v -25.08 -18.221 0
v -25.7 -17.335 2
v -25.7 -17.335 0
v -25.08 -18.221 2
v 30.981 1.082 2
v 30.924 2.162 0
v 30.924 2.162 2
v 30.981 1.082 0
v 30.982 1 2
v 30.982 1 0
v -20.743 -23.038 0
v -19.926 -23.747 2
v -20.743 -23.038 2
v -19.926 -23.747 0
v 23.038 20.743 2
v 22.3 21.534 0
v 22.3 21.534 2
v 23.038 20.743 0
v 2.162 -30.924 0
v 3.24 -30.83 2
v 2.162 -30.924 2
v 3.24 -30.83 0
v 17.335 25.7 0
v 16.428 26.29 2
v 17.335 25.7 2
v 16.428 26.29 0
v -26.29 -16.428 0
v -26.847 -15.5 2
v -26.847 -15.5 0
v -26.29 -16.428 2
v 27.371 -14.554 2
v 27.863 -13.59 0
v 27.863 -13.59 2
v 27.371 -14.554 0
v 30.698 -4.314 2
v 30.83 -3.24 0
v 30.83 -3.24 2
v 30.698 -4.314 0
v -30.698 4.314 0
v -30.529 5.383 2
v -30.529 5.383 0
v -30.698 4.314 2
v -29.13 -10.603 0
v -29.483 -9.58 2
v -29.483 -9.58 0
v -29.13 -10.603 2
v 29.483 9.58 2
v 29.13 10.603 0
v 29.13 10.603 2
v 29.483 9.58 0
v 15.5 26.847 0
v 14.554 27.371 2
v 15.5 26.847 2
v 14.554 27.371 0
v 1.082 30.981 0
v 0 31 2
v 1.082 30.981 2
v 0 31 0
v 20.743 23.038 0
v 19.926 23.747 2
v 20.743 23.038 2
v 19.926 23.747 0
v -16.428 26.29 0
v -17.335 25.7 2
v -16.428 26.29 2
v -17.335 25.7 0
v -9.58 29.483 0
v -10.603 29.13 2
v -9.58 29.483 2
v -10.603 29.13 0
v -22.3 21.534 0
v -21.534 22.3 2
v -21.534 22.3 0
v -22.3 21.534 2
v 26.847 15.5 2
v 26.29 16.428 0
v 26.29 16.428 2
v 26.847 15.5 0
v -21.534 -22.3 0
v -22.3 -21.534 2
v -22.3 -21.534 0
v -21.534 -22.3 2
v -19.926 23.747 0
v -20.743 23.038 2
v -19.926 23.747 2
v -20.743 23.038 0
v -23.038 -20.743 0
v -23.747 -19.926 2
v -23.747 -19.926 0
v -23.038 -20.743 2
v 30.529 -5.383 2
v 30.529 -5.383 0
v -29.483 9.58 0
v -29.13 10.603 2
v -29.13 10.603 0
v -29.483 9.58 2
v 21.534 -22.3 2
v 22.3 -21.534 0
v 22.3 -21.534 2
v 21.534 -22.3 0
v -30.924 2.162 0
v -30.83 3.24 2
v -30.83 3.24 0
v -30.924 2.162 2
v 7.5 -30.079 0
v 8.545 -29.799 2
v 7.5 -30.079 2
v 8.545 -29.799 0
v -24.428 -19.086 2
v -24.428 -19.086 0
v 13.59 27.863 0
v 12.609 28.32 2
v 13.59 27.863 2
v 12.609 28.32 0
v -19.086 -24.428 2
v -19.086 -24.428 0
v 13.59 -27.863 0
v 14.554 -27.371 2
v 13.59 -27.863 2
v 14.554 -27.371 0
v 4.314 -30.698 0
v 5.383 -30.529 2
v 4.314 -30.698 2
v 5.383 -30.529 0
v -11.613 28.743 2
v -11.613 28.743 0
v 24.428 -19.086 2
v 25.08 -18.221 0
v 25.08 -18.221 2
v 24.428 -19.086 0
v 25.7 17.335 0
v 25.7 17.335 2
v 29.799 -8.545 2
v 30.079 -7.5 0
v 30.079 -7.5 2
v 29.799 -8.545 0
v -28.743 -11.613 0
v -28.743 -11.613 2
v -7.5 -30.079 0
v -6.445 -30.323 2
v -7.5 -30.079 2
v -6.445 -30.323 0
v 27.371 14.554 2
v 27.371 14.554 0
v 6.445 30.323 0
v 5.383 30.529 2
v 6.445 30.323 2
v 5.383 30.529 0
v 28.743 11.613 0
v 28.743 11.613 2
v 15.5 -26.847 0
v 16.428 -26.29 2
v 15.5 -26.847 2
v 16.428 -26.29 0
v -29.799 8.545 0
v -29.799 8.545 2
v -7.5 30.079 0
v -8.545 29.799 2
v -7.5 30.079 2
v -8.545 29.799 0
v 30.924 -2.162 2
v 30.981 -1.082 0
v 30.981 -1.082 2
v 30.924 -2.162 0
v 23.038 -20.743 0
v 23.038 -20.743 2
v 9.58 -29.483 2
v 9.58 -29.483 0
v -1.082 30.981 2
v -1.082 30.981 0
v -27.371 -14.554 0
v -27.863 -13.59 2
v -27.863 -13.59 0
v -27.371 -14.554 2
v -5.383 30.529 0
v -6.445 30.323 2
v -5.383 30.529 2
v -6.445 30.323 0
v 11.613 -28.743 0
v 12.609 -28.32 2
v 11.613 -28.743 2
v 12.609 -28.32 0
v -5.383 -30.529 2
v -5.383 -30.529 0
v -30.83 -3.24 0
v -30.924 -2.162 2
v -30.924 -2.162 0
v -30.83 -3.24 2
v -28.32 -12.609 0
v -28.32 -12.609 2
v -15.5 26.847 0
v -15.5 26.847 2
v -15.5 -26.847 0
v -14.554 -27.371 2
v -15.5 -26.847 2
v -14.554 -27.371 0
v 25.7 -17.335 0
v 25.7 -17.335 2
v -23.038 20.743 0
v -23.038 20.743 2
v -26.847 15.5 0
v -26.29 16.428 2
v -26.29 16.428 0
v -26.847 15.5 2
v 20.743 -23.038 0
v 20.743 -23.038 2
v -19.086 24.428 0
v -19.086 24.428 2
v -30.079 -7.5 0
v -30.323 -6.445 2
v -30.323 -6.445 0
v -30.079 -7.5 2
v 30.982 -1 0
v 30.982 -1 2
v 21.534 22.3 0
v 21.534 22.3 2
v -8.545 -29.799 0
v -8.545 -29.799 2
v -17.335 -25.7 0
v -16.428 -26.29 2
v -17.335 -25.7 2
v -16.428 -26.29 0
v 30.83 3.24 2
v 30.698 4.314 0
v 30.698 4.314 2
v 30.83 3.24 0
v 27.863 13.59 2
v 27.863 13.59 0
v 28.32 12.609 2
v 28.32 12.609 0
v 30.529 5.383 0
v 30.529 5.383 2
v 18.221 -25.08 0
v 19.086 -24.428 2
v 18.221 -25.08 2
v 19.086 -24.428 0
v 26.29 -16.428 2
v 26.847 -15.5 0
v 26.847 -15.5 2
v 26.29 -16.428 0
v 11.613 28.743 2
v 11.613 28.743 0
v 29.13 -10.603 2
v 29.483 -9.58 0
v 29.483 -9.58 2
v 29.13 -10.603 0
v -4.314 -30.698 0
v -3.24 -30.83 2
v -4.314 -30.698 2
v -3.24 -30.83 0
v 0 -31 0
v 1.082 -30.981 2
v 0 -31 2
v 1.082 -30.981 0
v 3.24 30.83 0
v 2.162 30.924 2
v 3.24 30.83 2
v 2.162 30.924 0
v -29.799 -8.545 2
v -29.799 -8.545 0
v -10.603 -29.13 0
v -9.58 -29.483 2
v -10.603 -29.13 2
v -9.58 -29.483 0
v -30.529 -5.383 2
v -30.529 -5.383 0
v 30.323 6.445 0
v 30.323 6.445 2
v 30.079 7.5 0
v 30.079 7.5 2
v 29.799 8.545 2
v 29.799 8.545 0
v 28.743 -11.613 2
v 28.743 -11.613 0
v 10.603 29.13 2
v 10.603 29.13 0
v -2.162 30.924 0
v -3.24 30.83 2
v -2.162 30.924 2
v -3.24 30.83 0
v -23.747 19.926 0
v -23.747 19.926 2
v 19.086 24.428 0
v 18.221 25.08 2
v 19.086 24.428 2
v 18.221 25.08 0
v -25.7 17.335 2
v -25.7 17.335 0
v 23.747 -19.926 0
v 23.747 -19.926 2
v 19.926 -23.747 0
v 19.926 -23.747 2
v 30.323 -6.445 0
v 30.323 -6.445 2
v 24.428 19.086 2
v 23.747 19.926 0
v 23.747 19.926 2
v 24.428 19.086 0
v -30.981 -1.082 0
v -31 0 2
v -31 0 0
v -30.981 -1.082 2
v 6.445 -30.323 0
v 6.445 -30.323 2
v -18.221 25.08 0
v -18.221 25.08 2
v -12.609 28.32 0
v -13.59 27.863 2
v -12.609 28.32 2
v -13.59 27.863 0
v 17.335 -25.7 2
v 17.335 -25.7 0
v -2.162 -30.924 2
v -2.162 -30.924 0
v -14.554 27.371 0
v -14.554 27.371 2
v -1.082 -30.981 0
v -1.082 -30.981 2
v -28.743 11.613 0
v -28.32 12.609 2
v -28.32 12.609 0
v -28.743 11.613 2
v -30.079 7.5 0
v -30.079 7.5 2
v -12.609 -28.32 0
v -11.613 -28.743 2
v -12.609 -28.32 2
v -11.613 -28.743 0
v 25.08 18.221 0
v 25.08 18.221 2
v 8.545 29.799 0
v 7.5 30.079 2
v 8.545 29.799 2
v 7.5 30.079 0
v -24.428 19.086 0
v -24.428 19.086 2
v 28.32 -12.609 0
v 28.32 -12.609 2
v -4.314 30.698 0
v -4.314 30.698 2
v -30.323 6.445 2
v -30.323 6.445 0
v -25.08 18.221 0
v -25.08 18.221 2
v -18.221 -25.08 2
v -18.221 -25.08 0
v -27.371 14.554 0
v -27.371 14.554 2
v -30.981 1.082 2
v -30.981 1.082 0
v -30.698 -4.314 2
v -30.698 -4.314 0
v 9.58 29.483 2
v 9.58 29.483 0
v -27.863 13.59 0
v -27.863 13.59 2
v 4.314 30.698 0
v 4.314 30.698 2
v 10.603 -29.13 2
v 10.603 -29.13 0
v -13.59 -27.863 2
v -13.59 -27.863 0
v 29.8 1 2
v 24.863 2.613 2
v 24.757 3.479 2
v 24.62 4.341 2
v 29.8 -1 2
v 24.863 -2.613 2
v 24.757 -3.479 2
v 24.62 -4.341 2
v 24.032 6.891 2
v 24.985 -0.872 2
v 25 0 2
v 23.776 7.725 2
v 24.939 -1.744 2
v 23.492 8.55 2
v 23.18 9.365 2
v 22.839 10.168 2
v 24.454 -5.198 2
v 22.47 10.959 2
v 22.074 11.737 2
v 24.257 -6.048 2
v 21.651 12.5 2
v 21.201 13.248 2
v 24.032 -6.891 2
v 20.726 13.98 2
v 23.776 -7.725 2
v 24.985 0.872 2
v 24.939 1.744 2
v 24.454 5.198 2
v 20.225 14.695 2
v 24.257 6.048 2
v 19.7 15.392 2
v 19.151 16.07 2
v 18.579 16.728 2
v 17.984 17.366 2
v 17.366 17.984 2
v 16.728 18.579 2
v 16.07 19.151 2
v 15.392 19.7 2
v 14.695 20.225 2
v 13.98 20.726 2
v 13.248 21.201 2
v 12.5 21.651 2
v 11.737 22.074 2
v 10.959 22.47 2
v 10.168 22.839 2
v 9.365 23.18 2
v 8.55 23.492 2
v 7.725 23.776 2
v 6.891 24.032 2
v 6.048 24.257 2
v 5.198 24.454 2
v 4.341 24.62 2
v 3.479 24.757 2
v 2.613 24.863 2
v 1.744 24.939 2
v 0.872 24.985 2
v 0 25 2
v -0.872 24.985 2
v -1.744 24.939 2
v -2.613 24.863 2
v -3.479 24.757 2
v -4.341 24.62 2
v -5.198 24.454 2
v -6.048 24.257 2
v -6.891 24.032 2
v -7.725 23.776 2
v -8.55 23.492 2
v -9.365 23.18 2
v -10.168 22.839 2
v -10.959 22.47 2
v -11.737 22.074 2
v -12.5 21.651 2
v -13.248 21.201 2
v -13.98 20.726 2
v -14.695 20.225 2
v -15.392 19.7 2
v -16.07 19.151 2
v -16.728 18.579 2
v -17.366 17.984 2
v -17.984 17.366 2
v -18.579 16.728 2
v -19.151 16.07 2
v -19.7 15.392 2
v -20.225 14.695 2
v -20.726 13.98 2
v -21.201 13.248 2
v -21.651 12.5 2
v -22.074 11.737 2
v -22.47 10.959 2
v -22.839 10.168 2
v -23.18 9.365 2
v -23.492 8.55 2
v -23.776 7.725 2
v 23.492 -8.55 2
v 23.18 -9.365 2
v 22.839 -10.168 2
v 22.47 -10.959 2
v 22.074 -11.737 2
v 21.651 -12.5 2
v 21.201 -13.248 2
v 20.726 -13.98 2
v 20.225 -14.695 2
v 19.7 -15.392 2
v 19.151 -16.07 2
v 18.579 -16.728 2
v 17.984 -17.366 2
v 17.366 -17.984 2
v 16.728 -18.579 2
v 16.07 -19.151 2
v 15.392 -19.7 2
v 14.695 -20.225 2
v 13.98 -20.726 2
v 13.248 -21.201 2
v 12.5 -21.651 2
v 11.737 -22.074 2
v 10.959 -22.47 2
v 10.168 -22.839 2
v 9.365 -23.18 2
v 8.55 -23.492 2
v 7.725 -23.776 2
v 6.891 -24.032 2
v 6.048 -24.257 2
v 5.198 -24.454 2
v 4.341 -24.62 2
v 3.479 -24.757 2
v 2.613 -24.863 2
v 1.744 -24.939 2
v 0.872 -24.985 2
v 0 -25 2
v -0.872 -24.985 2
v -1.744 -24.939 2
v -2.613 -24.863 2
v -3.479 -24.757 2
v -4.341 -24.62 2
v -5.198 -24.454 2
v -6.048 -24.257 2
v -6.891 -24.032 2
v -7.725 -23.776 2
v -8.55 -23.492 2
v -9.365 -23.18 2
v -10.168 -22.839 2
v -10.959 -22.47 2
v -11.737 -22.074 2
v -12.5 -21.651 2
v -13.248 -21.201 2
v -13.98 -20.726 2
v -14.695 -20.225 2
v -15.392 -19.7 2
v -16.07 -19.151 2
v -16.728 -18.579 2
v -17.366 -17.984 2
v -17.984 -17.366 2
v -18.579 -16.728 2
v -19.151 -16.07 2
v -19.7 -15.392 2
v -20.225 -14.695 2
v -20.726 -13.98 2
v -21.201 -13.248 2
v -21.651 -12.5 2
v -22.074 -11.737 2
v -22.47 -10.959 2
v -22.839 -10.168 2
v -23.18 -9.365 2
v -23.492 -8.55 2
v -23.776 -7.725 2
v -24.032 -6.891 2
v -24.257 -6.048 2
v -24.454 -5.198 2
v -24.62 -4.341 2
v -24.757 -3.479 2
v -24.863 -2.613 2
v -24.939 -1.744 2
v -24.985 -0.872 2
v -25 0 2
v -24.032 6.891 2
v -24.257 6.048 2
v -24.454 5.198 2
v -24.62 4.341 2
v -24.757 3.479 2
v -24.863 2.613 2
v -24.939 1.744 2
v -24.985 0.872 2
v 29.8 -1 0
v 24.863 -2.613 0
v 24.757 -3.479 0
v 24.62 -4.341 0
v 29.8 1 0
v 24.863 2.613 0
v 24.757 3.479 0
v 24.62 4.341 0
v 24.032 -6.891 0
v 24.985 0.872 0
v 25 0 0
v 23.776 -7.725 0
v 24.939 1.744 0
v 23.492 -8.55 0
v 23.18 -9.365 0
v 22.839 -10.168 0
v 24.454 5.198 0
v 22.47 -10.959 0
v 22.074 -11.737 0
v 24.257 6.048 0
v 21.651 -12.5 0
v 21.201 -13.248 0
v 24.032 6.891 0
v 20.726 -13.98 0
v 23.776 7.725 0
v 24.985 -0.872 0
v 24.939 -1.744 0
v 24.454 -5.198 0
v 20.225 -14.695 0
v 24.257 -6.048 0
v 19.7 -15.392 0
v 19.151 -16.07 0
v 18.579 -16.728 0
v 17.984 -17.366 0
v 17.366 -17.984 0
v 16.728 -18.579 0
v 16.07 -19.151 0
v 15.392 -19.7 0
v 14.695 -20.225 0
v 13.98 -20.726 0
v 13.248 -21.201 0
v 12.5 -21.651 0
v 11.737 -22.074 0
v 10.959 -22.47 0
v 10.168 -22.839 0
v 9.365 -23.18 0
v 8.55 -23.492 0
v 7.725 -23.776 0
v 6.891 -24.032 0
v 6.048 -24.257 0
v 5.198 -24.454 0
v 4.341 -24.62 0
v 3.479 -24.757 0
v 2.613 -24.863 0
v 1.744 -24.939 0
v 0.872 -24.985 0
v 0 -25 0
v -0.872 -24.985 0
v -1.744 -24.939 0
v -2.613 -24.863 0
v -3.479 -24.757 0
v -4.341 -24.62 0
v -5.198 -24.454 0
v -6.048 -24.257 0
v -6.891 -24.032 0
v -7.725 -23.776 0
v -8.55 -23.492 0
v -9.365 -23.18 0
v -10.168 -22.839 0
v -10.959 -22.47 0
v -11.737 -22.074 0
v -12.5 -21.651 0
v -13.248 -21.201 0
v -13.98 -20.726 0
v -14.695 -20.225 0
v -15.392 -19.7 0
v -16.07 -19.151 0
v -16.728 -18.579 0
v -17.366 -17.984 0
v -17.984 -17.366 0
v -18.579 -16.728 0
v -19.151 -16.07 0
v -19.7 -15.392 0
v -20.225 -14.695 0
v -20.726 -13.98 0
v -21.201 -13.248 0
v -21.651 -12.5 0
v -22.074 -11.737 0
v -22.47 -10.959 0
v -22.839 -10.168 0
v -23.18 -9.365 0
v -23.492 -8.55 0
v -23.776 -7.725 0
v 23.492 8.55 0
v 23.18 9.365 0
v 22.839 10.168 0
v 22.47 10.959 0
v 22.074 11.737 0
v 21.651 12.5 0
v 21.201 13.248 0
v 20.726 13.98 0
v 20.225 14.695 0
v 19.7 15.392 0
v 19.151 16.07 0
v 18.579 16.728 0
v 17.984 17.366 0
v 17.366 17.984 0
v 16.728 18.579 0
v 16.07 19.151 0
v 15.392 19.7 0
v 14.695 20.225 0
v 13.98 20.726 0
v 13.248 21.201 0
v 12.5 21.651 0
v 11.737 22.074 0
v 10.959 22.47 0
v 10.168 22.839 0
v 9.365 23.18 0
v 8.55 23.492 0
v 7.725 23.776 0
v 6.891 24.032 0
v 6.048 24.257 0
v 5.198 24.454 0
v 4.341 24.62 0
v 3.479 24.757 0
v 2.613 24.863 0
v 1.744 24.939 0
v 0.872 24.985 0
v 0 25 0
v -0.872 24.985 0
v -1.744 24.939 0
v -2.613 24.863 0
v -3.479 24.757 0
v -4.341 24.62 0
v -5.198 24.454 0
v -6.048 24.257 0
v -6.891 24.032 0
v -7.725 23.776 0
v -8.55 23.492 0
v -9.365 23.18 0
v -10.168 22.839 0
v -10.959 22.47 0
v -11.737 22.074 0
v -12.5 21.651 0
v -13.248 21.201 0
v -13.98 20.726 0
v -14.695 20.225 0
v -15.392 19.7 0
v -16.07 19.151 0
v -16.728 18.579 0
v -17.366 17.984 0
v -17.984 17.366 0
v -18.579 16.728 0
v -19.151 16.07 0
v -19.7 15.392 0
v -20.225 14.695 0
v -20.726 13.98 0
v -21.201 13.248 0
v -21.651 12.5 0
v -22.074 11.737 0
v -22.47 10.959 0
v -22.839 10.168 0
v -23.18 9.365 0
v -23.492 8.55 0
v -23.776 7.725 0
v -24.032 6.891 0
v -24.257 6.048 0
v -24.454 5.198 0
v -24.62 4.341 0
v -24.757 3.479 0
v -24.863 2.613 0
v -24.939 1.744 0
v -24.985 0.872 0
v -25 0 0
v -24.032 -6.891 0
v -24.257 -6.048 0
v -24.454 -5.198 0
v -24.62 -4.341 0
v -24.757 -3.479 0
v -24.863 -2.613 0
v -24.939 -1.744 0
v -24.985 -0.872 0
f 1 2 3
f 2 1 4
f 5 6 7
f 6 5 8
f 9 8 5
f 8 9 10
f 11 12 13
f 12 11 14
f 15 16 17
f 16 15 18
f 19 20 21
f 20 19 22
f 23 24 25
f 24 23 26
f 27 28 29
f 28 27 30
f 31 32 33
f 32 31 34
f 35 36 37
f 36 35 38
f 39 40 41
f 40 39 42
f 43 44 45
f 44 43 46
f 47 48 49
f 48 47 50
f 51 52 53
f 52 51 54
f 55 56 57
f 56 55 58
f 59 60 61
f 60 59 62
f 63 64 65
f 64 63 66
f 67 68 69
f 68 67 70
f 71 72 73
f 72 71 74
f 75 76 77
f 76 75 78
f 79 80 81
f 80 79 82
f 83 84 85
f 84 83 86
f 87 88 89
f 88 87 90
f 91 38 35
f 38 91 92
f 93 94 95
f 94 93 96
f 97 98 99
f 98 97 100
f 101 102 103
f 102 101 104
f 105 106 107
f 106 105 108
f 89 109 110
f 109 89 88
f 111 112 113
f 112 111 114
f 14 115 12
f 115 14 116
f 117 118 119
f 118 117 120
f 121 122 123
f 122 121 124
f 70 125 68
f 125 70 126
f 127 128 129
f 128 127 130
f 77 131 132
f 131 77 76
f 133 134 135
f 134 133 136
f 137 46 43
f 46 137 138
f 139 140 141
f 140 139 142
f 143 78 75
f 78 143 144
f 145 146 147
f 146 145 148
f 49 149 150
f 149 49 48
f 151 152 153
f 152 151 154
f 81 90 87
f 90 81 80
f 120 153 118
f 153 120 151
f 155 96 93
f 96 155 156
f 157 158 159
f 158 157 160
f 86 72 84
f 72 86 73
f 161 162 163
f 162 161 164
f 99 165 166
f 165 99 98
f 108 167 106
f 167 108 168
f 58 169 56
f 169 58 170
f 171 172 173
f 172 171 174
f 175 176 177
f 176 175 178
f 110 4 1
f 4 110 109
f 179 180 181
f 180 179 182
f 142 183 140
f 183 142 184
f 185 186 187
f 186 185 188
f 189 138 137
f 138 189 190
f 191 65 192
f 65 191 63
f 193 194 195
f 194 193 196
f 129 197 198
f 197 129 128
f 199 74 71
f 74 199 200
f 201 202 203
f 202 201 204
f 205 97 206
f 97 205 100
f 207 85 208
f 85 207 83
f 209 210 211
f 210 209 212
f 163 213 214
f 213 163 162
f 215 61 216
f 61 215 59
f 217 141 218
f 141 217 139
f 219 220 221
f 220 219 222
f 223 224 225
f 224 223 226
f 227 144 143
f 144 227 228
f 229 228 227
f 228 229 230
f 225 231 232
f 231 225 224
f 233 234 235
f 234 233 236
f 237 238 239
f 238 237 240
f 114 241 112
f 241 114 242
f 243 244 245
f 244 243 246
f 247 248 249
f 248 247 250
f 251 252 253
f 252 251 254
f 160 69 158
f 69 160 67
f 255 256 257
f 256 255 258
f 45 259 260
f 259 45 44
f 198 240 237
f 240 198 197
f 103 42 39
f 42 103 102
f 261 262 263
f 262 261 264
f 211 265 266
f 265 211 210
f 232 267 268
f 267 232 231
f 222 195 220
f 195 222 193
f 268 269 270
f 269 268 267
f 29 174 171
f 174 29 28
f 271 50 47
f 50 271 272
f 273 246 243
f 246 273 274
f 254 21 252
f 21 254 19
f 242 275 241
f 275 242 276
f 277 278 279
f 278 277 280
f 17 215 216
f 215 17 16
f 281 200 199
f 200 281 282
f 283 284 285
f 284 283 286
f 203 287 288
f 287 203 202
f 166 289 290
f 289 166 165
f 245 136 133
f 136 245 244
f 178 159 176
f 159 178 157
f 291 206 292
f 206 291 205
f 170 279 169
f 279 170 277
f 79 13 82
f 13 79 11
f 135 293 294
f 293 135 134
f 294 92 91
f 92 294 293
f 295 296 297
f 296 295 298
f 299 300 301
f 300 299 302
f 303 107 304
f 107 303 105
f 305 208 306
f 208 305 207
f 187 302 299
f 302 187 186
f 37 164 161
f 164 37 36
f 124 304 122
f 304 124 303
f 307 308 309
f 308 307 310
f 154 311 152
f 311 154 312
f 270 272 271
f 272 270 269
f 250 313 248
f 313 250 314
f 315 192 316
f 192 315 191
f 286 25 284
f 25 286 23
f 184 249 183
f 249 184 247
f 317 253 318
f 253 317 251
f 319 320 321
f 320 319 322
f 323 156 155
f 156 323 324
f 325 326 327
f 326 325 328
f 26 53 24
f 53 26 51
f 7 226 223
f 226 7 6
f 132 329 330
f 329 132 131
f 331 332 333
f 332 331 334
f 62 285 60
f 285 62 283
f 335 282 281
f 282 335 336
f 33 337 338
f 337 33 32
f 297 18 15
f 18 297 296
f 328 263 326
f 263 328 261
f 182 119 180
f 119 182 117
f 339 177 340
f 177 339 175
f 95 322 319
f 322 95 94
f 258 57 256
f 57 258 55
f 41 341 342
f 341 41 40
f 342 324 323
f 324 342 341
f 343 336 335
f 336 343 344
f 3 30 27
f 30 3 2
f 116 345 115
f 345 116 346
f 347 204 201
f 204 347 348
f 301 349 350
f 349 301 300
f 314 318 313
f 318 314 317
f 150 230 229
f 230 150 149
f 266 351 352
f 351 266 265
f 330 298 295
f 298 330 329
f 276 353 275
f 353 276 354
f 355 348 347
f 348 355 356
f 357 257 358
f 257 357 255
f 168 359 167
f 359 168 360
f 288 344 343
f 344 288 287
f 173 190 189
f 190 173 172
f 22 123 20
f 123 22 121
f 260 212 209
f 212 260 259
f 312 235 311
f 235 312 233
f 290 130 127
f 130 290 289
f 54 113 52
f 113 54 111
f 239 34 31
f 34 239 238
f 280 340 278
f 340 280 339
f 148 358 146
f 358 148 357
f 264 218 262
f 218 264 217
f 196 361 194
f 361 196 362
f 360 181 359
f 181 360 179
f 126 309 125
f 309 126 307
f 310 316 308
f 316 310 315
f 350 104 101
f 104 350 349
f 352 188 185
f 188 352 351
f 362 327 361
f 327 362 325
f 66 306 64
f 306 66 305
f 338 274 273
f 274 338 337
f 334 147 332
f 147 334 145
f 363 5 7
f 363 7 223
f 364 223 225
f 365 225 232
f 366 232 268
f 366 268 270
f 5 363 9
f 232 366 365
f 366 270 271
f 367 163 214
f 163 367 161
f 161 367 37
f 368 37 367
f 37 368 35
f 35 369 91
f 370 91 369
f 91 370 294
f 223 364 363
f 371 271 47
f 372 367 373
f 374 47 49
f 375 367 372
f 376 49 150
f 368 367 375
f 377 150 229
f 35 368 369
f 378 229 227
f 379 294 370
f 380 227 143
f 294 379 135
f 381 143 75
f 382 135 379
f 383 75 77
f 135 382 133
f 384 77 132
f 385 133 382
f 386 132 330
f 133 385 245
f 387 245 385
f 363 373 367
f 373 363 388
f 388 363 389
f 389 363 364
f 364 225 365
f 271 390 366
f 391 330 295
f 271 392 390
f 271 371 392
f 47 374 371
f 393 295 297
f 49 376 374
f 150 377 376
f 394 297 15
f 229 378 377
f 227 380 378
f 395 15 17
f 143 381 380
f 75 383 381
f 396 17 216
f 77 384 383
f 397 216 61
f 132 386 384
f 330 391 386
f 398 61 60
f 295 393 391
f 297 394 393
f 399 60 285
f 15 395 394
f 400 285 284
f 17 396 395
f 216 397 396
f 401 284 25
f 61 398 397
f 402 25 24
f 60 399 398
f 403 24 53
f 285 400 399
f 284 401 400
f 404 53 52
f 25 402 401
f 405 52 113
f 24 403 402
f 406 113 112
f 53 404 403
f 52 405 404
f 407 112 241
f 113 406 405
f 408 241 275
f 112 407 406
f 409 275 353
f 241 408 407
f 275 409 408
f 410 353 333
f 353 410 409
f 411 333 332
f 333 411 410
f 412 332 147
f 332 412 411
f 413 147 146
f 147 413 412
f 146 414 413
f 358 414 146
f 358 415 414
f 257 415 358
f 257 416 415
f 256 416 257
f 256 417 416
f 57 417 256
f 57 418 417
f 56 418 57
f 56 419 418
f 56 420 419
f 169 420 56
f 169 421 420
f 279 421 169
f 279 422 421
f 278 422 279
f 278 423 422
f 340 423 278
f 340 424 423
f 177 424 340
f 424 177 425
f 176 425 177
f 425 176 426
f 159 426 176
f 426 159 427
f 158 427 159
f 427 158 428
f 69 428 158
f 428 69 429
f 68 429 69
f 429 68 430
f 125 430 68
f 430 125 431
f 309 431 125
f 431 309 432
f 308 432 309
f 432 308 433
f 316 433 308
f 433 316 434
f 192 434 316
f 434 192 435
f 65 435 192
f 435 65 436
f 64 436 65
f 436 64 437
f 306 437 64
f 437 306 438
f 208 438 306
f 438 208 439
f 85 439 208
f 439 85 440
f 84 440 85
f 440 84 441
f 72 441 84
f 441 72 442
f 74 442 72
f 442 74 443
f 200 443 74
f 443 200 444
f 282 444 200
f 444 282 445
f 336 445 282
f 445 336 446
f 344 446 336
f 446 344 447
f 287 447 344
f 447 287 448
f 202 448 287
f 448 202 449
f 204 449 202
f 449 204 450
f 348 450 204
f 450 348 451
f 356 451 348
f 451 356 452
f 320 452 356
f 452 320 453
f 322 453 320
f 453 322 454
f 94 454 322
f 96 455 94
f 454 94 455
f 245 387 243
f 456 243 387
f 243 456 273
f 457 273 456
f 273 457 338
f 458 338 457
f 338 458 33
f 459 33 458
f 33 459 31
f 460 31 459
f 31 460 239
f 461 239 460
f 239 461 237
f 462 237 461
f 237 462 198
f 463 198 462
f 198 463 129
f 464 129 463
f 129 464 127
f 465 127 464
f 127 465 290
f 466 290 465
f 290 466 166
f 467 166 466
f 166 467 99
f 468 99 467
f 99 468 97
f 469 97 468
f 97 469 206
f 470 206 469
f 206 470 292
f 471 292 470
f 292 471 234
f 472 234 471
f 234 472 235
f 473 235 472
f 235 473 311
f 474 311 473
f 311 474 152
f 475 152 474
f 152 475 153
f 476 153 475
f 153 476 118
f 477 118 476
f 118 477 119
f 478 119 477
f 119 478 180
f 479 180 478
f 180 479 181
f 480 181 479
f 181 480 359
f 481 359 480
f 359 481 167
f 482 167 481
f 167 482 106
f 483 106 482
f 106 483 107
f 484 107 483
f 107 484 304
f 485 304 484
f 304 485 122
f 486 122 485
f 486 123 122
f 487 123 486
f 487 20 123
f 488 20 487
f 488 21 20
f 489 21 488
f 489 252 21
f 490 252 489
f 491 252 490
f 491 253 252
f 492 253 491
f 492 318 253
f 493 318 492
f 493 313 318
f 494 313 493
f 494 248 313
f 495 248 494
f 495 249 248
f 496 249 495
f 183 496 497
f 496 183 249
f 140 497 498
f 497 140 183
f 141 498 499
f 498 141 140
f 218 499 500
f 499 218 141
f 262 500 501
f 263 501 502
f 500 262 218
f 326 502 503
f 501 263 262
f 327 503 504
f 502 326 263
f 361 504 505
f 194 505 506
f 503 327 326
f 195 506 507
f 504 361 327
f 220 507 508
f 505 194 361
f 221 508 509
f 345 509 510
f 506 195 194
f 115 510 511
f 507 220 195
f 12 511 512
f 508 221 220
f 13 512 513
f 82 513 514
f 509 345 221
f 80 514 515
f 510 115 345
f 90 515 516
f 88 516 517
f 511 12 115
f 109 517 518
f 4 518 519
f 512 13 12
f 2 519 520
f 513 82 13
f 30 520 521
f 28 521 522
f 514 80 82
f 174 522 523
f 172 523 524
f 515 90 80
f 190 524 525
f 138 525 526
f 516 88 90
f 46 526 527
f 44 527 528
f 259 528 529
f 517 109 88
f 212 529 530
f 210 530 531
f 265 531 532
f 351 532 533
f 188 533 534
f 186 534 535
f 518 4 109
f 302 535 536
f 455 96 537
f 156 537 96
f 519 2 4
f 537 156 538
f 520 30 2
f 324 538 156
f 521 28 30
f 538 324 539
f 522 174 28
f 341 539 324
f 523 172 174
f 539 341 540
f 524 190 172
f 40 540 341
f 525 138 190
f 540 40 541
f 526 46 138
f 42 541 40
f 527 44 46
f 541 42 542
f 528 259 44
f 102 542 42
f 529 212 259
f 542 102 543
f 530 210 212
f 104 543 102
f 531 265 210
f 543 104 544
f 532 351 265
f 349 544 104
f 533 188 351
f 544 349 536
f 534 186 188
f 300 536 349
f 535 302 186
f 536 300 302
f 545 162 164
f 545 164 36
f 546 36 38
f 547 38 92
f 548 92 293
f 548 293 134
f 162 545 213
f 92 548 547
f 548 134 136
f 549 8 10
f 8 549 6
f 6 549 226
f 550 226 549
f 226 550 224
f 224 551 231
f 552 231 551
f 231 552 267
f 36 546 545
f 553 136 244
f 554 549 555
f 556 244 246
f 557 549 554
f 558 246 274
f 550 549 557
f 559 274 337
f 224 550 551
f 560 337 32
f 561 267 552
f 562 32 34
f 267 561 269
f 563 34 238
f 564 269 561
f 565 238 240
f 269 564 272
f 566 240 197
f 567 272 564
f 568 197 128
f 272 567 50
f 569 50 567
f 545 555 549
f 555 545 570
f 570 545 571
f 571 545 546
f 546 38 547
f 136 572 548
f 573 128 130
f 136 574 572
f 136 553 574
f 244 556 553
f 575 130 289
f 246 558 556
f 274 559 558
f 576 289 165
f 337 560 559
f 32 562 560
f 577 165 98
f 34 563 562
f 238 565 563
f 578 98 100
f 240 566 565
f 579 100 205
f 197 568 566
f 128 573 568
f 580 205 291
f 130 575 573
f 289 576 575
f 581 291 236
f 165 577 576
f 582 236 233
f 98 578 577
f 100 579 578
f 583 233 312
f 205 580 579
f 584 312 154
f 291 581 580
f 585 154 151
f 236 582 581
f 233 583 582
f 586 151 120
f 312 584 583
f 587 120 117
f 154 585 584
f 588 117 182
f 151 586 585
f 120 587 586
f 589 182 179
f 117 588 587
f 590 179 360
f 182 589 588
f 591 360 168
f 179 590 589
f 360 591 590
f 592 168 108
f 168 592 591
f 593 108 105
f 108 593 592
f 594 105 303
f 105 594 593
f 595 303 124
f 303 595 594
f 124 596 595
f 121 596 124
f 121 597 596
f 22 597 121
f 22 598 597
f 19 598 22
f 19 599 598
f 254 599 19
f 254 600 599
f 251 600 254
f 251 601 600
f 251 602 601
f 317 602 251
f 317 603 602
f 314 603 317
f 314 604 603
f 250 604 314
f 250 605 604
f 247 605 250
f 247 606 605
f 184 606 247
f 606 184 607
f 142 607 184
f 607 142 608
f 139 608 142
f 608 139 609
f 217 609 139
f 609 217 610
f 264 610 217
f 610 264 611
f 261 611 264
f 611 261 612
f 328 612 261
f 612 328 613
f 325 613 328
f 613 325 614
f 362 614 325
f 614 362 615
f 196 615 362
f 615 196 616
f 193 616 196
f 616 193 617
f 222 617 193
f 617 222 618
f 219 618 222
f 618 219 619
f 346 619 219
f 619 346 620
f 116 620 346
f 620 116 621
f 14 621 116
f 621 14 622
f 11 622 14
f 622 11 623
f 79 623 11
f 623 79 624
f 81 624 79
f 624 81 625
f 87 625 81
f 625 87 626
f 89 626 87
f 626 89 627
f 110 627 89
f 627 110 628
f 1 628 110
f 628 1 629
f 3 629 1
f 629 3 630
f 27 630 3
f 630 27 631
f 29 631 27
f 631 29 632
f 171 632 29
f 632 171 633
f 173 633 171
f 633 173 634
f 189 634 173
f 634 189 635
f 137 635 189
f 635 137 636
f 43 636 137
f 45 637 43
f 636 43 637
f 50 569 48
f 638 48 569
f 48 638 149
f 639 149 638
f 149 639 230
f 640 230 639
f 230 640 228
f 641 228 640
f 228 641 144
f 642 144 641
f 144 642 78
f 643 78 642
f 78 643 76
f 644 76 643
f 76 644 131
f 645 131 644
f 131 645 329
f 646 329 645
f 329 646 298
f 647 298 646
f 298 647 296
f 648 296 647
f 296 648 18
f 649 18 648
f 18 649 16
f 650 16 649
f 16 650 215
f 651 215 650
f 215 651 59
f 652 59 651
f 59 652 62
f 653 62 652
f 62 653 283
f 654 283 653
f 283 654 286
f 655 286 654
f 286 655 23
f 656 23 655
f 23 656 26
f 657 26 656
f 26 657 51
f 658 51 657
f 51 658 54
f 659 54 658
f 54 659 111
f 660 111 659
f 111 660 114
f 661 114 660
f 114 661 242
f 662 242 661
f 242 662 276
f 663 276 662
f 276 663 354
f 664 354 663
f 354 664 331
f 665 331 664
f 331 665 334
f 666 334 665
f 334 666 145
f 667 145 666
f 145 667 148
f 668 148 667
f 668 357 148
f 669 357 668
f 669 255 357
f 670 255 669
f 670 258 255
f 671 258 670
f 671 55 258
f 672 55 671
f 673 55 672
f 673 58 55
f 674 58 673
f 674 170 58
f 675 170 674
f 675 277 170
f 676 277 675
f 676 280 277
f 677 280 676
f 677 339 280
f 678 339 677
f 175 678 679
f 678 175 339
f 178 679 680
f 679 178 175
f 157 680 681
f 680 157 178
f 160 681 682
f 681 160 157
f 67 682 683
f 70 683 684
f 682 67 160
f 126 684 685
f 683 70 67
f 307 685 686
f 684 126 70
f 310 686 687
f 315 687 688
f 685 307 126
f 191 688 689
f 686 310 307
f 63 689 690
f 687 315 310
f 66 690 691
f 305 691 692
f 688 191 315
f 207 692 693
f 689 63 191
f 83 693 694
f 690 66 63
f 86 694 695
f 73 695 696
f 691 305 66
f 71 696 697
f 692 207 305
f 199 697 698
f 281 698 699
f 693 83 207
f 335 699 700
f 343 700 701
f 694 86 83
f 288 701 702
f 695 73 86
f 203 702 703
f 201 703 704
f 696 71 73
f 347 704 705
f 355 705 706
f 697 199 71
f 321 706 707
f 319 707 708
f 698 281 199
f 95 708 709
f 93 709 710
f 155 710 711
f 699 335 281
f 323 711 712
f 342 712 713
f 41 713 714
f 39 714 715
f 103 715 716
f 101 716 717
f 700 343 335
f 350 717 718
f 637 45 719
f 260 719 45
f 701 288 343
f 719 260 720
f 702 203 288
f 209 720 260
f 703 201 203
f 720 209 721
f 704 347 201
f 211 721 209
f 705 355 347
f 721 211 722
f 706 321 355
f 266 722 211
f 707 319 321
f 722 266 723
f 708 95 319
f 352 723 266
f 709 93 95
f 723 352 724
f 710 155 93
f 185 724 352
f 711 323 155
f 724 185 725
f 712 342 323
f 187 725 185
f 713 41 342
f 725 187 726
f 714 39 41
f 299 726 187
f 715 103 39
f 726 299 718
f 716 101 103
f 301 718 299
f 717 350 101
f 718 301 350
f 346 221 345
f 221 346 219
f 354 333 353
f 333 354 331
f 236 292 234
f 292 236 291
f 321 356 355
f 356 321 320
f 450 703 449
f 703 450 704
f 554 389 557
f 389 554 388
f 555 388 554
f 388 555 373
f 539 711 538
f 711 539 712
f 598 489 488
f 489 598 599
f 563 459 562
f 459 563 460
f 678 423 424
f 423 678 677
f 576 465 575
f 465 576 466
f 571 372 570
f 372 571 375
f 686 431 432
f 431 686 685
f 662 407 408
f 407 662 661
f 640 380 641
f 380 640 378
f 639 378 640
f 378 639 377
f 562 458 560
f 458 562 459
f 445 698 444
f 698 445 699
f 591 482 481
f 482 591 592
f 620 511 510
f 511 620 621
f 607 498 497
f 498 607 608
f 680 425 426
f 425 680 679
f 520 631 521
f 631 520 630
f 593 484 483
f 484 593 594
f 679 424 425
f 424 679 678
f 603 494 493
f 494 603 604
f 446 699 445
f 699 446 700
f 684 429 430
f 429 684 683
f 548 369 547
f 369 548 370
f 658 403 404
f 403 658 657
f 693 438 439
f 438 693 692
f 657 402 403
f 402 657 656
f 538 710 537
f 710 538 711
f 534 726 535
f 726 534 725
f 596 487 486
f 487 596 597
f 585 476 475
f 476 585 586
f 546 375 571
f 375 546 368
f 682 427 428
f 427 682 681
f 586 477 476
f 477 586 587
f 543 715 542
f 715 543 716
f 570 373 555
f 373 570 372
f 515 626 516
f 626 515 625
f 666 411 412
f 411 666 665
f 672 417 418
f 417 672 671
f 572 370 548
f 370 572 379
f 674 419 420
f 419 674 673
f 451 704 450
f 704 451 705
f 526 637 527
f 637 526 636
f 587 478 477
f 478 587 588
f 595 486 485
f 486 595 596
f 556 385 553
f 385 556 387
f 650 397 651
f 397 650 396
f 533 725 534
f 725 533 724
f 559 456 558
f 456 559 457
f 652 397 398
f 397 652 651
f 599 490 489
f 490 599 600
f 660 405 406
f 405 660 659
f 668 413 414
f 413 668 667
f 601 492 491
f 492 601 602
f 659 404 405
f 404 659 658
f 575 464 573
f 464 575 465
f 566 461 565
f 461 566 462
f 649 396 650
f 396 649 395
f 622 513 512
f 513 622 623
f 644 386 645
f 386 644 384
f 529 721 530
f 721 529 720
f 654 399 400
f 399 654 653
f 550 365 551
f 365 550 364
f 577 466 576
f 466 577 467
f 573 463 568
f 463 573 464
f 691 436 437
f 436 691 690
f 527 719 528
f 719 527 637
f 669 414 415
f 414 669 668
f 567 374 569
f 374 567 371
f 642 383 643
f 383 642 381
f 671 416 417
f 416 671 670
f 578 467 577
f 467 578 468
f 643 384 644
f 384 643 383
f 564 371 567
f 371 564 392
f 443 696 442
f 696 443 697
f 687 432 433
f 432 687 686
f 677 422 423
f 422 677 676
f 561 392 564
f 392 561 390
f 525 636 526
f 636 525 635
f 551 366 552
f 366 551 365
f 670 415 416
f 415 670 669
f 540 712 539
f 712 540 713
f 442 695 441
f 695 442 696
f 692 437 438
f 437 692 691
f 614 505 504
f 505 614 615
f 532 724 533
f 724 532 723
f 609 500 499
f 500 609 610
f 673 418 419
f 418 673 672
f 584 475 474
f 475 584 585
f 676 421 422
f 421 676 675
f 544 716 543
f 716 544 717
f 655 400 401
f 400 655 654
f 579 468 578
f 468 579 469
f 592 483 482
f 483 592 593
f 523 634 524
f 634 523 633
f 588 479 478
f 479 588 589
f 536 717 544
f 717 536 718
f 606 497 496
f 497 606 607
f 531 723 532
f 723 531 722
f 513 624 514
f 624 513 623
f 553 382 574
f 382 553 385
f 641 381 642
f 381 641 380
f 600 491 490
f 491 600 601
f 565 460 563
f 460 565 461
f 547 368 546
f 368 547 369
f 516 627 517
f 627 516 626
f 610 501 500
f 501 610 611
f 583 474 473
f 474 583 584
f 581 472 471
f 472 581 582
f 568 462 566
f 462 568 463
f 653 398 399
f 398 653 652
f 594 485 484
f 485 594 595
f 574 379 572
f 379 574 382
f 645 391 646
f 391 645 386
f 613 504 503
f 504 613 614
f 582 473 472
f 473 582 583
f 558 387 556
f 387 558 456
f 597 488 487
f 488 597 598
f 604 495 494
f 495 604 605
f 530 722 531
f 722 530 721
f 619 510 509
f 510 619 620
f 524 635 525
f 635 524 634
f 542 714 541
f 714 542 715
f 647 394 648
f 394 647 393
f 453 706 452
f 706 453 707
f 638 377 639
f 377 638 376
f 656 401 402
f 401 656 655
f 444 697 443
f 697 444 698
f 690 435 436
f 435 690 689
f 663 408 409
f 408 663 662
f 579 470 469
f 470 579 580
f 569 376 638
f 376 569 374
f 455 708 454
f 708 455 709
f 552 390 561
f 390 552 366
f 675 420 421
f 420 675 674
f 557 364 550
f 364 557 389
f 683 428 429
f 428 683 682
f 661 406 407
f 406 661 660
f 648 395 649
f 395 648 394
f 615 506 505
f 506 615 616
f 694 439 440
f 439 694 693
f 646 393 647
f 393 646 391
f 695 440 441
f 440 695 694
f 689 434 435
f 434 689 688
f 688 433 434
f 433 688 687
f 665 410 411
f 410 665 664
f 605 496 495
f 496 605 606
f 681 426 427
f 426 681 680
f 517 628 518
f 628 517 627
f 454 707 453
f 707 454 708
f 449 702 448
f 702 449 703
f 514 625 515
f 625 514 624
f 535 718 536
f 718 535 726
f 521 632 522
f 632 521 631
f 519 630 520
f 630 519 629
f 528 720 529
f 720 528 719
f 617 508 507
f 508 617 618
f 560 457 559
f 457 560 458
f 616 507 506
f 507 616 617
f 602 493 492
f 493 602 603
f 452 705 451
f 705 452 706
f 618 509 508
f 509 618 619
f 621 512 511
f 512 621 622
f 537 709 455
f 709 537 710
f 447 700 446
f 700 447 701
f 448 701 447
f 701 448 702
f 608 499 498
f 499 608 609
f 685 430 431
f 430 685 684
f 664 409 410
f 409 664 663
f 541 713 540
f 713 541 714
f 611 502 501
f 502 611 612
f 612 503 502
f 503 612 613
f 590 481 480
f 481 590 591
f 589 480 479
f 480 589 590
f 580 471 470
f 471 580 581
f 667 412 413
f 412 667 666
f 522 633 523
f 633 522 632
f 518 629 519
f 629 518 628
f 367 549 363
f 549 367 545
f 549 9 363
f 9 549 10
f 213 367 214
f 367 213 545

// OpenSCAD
// Test rings to find the right hole size for the 45 mm pole.
// One 50 mm ring, flat (2 mm tall, 6 mm wall) so it grips the bed well.
// Print in PLA, 0.2 mm layers, no supports. Slide it onto the pole:
// it should slide on easily without wobbling.

holes  = [50.0];             // inner diameter, mm
wall   = 6;                  // ring wall thickness, mm
height = 2;                  // ring height, mm
gap    = 8;                  // space between rings, mm
$fn    = 180;

module ring(d, notches) {
  difference() {
    cylinder(h = height, d = d + 2 * wall);
    translate([0, 0, -1]) cylinder(h = height + 2, d = d);
    // Notches on the outside edge to tell the rings apart.
    for (i = [0 : notches - 1])
      rotate([0, 0, i * 12])
        translate([d / 2 + wall - 1.2, -1, -1]) cube([2, 2, height + 2]);
  }
}

for (i = [0 : len(holes) - 1])
  translate([i * (holes[i] + 2 * wall + gap), 0, 0]) ring(holes[i], i + 1);
